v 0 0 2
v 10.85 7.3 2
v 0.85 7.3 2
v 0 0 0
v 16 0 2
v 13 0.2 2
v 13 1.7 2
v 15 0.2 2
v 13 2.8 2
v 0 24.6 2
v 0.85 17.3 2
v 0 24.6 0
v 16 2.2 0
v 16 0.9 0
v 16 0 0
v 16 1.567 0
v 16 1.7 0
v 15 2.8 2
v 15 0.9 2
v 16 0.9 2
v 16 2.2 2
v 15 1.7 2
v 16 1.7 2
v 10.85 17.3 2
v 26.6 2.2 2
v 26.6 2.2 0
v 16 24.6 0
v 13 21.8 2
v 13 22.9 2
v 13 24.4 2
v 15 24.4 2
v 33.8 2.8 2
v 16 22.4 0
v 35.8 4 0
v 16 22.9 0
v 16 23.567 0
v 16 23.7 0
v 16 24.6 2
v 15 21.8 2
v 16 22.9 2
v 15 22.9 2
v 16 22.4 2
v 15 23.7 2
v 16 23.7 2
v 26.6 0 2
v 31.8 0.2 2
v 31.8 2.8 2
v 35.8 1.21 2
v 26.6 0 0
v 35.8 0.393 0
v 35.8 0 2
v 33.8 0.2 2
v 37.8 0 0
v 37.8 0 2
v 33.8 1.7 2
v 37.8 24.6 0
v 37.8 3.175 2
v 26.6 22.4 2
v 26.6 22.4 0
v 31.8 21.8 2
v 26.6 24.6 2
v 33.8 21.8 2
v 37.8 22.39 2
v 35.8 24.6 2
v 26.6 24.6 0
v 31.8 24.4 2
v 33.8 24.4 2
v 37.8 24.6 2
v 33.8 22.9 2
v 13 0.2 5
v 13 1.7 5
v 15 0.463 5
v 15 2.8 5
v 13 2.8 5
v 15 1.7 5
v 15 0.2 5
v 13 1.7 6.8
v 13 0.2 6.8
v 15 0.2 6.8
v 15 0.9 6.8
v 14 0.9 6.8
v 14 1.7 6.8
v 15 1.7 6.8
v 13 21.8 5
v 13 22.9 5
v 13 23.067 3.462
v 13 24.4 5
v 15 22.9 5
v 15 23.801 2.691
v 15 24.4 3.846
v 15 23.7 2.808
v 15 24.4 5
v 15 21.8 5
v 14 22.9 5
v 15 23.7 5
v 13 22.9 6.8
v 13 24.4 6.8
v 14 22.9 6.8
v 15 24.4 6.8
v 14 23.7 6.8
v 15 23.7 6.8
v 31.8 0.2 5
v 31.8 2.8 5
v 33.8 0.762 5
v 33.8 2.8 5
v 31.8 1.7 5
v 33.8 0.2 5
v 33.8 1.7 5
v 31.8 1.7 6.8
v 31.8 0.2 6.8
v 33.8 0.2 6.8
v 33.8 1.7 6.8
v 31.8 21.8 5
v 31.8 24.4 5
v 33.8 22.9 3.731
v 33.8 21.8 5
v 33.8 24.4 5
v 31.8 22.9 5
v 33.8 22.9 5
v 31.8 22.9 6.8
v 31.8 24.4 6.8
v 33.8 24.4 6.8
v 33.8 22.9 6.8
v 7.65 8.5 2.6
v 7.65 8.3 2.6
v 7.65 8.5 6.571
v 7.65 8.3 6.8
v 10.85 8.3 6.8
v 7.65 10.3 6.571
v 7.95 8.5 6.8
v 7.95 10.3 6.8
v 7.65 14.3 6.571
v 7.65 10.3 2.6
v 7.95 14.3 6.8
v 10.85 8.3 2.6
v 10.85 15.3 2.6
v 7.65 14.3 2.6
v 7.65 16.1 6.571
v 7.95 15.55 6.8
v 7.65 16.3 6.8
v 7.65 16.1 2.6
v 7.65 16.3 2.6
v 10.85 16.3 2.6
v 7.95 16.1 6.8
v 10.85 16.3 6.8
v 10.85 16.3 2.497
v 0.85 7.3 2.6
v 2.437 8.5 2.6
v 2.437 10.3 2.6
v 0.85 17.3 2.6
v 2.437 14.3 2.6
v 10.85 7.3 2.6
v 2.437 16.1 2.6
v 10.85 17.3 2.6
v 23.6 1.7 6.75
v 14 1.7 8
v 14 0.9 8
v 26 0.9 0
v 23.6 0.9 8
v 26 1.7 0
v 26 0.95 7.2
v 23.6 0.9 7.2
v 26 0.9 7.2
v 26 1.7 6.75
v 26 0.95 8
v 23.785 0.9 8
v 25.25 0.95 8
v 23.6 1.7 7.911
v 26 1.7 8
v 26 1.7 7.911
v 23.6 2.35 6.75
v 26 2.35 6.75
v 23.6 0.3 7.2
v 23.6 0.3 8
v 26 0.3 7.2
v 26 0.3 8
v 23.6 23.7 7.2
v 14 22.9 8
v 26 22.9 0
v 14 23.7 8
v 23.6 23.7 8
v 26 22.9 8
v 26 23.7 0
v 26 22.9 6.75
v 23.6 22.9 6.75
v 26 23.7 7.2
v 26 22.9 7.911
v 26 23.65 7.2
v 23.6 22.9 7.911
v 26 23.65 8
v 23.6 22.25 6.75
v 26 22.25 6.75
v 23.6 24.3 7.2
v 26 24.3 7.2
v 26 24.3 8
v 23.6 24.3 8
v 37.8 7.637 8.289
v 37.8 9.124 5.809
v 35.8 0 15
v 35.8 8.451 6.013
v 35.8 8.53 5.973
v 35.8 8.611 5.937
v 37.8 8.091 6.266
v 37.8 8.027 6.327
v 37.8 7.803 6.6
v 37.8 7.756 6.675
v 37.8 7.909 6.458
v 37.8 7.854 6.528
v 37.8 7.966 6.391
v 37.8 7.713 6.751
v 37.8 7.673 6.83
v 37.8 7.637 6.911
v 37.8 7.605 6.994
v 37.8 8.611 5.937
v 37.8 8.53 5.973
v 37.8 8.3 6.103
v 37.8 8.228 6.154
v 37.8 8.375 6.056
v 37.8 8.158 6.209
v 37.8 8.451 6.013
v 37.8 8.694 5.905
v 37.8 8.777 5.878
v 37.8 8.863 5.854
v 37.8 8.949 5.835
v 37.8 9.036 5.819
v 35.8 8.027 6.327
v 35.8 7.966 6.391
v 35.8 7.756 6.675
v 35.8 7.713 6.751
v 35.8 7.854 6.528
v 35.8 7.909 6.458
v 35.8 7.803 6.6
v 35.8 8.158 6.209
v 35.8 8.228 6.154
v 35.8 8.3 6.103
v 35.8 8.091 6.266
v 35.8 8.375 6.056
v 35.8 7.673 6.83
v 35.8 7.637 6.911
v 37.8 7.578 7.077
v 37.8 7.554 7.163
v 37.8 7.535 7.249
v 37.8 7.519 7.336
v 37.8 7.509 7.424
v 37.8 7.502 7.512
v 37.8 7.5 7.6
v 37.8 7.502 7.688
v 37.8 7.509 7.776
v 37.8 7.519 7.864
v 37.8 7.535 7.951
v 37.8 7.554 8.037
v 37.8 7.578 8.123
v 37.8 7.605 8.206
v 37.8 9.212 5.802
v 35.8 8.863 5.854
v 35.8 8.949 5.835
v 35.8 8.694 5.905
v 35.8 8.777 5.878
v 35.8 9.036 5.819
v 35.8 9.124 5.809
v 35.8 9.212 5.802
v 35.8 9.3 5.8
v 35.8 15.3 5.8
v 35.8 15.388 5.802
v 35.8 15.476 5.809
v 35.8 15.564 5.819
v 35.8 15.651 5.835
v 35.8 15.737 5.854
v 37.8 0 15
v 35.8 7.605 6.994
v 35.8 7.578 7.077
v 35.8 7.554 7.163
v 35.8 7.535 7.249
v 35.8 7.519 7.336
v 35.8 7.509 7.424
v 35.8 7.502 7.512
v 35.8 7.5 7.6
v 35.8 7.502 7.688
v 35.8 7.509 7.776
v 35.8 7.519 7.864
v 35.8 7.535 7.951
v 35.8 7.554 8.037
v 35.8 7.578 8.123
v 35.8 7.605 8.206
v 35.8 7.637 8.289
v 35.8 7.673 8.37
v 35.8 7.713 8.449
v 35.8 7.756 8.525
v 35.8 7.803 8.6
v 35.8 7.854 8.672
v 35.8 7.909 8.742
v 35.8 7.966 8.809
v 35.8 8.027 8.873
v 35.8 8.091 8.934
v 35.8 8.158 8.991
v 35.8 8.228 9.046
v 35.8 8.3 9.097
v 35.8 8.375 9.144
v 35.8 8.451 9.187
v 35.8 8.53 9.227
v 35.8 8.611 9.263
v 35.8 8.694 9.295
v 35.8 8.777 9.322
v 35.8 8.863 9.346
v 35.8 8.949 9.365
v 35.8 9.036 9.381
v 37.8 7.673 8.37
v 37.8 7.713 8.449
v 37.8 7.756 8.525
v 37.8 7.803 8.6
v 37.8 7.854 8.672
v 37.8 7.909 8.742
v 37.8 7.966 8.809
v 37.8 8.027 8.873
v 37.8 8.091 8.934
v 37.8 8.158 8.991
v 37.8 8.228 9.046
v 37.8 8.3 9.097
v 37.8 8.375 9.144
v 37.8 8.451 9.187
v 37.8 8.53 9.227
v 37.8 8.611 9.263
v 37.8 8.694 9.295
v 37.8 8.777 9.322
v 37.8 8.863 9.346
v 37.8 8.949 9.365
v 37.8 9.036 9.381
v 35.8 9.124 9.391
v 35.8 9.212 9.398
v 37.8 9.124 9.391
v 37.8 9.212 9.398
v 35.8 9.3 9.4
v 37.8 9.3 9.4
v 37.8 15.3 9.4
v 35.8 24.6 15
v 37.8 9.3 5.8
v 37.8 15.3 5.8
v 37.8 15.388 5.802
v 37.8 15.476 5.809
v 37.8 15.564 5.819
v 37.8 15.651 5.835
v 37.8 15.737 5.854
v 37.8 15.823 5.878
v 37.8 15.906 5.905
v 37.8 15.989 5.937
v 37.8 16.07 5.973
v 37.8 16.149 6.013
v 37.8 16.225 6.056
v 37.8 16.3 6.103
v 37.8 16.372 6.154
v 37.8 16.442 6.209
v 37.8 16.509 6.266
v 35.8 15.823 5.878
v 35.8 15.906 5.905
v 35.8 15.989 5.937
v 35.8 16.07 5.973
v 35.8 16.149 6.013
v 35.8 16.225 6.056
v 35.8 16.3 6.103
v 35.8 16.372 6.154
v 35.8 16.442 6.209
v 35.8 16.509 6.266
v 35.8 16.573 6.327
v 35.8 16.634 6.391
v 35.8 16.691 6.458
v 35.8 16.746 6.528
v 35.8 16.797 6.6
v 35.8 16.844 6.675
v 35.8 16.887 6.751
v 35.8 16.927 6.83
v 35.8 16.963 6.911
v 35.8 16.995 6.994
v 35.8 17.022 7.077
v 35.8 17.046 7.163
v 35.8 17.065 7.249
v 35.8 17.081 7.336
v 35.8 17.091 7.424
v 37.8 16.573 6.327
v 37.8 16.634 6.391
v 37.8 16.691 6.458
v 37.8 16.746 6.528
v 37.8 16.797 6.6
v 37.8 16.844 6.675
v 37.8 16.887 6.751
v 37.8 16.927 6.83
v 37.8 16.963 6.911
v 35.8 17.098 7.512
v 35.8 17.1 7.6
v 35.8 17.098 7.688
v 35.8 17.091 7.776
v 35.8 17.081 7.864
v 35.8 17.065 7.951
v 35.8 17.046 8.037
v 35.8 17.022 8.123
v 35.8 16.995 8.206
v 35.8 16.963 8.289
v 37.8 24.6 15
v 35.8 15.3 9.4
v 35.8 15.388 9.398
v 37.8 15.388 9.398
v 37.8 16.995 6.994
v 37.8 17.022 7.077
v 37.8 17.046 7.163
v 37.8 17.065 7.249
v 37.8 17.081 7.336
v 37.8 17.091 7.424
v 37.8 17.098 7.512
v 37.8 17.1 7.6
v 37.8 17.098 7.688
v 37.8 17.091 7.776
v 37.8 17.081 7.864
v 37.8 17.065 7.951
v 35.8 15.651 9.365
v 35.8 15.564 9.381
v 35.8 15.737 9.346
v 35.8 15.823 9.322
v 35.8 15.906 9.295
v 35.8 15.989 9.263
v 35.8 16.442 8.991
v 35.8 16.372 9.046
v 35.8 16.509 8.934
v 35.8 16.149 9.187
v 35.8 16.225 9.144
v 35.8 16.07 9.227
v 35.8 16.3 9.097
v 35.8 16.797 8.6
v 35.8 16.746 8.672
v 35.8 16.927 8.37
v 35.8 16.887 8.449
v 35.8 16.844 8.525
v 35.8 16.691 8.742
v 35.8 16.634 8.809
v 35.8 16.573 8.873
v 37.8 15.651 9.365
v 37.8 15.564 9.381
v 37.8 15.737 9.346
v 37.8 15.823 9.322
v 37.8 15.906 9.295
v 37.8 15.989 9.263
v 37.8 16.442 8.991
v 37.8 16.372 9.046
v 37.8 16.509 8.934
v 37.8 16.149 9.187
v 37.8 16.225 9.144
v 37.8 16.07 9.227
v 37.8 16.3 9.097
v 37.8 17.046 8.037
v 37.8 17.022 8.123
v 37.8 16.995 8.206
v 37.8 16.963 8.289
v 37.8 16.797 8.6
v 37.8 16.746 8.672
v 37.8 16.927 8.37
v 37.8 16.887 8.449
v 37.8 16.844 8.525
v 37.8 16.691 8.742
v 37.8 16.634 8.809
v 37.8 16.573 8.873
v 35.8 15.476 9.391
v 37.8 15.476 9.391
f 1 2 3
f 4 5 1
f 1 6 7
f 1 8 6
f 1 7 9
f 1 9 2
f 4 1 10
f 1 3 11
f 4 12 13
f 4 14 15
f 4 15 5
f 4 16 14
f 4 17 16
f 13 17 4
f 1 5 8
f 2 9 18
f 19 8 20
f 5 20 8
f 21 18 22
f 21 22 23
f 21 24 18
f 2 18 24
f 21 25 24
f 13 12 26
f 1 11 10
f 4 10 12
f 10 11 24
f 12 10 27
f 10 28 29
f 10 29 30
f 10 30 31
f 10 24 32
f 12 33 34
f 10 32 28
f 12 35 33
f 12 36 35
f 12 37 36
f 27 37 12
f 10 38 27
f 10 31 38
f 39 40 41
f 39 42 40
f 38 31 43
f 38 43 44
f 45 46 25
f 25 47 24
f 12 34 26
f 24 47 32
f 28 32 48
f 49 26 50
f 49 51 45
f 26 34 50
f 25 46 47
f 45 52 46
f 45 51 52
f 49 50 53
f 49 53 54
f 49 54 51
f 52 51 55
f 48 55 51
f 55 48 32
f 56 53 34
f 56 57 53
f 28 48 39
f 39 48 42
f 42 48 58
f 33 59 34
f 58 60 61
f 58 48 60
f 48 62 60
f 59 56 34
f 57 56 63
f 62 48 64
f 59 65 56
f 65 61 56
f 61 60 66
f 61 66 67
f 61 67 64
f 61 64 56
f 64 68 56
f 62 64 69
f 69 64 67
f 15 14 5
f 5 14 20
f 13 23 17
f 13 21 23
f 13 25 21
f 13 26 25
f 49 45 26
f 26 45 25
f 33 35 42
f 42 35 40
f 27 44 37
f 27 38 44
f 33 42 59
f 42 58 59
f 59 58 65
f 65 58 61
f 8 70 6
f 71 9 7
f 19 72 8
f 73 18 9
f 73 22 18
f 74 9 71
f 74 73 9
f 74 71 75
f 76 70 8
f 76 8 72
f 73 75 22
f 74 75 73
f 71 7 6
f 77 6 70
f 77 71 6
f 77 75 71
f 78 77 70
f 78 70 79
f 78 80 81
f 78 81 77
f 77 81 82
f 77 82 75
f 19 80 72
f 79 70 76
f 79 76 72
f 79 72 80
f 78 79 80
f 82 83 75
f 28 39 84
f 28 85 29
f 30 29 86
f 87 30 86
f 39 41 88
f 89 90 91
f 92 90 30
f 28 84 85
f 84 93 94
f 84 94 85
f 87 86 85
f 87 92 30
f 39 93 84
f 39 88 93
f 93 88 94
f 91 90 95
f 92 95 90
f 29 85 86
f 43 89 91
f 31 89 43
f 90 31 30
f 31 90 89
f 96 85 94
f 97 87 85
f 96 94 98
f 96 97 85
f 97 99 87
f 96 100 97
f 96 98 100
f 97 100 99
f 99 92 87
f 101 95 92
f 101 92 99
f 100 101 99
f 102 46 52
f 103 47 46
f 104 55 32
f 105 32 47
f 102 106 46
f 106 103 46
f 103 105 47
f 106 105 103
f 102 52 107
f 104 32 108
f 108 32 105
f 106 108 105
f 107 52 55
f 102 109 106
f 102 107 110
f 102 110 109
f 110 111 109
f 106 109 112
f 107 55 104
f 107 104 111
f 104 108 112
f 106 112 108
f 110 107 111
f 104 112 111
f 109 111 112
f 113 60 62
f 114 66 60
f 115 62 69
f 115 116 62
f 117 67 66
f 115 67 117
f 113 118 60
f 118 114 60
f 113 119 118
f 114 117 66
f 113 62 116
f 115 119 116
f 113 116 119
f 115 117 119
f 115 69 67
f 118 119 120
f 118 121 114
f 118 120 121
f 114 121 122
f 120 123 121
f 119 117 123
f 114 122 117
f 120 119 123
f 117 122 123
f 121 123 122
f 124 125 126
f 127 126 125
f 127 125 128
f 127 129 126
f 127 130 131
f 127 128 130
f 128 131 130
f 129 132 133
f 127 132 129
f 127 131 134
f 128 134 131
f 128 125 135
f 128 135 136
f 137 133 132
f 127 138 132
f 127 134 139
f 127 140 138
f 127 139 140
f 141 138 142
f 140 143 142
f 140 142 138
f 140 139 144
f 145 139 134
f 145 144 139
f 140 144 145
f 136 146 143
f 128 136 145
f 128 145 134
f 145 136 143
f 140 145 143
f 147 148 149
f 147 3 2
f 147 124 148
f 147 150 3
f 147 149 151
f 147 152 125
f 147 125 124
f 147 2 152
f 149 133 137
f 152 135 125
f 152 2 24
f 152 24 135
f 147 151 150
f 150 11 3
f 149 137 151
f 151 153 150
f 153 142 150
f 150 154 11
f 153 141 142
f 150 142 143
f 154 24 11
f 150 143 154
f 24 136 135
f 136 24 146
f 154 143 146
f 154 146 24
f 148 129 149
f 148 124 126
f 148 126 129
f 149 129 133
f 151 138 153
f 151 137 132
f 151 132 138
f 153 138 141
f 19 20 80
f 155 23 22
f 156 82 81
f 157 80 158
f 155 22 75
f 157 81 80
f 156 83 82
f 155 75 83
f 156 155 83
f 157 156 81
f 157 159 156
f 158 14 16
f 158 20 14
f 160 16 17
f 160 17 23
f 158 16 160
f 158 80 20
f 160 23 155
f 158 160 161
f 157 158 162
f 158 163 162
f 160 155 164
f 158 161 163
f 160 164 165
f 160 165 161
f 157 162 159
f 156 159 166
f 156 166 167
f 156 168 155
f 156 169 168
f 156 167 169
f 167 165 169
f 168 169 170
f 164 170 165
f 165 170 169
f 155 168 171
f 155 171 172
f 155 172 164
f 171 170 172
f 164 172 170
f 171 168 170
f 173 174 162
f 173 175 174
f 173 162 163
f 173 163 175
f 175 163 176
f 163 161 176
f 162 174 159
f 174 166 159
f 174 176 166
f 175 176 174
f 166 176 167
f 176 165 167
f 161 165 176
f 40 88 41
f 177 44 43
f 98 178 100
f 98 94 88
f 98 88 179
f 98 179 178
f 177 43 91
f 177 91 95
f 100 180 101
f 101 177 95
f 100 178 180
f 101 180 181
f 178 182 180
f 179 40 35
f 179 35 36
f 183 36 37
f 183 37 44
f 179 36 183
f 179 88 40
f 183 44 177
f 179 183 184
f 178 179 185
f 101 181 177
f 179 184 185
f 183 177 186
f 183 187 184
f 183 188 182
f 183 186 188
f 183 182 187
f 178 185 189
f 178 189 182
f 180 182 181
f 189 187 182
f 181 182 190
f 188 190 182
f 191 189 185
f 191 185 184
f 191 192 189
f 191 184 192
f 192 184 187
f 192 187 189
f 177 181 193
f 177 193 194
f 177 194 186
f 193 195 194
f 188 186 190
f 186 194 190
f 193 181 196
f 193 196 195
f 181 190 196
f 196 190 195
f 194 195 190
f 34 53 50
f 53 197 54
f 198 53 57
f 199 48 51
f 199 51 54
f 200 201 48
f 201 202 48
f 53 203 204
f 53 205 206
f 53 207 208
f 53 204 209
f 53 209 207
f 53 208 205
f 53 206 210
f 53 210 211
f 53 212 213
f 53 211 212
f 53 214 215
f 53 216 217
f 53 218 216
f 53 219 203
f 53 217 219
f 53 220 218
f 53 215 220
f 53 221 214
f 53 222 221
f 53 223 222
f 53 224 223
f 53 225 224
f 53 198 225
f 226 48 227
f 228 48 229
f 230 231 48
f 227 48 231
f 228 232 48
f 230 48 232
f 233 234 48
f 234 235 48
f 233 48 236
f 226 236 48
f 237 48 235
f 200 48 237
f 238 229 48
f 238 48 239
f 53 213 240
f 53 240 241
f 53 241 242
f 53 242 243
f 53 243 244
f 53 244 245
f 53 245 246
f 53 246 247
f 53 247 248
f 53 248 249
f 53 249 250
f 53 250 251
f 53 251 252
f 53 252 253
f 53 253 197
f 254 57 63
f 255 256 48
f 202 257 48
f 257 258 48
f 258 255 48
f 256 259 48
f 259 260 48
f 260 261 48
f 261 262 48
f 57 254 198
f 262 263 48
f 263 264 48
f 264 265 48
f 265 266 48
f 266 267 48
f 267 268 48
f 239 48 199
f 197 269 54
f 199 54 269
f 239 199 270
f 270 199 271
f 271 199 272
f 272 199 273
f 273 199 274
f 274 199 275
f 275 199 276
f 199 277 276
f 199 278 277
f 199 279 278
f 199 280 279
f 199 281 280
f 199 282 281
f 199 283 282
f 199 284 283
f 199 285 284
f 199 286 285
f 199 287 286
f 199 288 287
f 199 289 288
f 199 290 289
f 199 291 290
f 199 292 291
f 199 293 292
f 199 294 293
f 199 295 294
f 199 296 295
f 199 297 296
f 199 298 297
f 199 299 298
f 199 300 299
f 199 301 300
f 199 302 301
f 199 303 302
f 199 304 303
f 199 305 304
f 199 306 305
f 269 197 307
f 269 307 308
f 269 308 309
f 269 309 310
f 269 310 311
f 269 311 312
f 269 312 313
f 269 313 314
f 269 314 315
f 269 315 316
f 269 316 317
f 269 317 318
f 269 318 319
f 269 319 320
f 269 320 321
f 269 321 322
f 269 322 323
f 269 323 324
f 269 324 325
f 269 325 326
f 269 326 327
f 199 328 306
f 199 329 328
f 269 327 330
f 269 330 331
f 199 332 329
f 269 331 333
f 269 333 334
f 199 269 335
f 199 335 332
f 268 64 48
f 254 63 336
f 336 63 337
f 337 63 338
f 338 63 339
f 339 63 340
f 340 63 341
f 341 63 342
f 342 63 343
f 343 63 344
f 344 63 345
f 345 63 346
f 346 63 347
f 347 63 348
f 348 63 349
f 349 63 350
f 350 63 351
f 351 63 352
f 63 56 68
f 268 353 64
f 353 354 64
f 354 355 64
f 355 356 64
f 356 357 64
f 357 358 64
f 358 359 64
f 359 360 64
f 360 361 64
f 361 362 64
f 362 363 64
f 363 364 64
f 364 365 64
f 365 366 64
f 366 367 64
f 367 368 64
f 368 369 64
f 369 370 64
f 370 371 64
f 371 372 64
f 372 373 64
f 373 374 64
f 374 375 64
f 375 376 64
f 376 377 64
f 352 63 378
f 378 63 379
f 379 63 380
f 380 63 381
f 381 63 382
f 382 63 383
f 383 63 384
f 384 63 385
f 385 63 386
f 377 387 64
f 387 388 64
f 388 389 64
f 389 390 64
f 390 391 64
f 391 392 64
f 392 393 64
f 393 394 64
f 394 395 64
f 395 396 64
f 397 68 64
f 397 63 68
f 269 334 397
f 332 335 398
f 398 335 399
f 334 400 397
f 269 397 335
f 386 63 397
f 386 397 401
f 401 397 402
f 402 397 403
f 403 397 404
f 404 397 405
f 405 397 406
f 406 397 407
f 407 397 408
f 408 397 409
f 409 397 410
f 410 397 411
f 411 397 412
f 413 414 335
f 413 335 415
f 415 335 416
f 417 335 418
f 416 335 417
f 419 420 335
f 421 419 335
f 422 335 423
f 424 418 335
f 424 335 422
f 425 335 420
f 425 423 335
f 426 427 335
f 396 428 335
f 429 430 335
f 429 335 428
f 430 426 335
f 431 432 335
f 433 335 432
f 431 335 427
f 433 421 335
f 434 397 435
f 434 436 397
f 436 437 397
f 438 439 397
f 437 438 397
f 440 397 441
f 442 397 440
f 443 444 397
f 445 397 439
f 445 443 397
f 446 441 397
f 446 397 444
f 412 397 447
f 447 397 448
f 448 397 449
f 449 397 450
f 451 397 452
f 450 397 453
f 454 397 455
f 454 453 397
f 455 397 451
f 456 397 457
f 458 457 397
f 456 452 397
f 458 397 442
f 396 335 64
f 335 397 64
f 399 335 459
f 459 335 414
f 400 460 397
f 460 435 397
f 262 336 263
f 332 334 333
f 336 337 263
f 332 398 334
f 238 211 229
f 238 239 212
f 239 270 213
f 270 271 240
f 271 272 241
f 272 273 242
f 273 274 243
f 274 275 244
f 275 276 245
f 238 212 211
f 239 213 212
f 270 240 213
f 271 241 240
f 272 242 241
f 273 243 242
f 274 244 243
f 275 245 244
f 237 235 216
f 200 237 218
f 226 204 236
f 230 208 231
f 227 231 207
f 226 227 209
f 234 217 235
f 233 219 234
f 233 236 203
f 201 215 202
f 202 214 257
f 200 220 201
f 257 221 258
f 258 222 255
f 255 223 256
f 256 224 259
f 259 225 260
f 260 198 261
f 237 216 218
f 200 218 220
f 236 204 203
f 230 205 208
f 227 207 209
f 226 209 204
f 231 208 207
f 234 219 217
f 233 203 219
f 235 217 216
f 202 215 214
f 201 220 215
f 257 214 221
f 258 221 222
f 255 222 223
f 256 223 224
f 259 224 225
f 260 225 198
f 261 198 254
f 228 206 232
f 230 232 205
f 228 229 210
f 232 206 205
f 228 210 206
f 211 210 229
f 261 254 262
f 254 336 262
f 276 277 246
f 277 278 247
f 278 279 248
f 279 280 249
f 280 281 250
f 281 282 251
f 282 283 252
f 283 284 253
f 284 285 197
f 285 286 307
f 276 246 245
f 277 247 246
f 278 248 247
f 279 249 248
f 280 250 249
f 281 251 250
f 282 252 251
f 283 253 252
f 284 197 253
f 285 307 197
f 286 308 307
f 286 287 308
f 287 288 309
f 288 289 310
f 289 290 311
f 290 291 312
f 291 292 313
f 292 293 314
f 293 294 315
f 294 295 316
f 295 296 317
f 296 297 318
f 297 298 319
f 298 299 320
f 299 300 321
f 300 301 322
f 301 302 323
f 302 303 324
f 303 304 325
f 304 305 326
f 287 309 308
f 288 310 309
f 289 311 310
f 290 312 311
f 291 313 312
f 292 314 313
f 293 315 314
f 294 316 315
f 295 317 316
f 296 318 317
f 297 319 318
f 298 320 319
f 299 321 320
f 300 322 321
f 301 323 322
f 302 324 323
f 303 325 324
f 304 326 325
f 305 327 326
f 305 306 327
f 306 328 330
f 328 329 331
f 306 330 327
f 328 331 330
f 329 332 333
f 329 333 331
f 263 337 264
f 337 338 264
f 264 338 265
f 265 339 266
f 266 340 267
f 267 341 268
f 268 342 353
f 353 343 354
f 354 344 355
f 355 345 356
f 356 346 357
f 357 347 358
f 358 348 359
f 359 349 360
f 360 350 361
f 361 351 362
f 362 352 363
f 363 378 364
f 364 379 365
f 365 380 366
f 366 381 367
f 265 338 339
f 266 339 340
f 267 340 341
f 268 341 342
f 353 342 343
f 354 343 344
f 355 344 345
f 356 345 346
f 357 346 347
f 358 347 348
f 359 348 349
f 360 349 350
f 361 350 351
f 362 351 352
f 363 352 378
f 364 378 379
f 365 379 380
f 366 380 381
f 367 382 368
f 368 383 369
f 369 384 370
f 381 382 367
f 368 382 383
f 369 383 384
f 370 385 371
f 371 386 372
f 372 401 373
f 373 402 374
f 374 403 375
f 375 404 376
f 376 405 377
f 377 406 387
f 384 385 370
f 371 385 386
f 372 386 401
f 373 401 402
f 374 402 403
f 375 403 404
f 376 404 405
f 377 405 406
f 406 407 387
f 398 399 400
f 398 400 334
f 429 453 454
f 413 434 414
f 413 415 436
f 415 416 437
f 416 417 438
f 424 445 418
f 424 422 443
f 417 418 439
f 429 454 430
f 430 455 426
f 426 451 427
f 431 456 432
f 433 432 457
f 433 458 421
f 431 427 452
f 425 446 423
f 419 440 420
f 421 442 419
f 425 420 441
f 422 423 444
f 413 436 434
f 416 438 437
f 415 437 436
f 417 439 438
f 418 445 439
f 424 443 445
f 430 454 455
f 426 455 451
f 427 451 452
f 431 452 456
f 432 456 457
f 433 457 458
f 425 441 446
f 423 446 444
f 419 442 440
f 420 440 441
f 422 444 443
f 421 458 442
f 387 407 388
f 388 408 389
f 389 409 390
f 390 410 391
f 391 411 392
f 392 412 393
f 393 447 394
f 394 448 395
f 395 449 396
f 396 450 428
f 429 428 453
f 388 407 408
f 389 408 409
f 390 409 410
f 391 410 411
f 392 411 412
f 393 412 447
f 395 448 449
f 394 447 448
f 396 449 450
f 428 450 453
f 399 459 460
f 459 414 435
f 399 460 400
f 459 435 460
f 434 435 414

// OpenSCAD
// Sample with flexible side latches, v0.9. Millimetres.
translate([-40.2, -7.0, 0]) union(){
difference(){
translate([40.2, 7.0, 0]) cube([37.8, 24.6, 2.0]);
translate([56.2, 6.9, -0.1]) cube([10.6, 2.3, 2.2]);
translate([56.2, 29.400000000000002, -0.1]) cube([10.6, 2.3, 2.2]);
}
union(){
translate([53.2, 7.2, 2.0]) cube([2.0, 2.6, 3.0]);
translate([53.2, 7.2, 2.0]) cube([2.0, 1.5, 4.8]);
translate([53.2, 28.8, 2.0]) cube([2.0, 2.6, 3.0]);
translate([53.2, 29.900000000000002, 2.0]) cube([2.0, 1.5, 4.8]);
translate([72.0, 7.2, 2.0]) cube([2.0, 2.6, 3.0]);
translate([72.0, 7.2, 2.0]) cube([2.0, 1.5, 4.8]);
translate([72.0, 28.8, 2.0]) cube([2.0, 2.6, 3.0]);
translate([72.0, 29.900000000000002, 2.0]) cube([2.0, 1.5, 4.8]);
translate([47.85, 15.3, 2.0]) cube([3.2, 8.0, 4.8]);
translate([41.050000000000004, 14.3, 1.5]) cube([10.0, 10.0, 1.1]);
polyhedron(points=[[41.85, 15.5, 2.0], [48.15, 15.5, 2.0], [48.15, 15.5, 6.8], [41.85, 17.3, 2.0], [48.15, 17.3, 2.0], [48.15, 17.3, 6.8]],faces=[[1, 2, 0], [5, 4, 3], [4, 1, 0], [3, 4, 0], [5, 2, 1], [4, 5, 1], [3, 0, 2], [5, 3, 2]]);
polyhedron(points=[[41.85, 21.3, 2.0], [48.15, 21.3, 2.0], [48.15, 21.3, 6.8], [41.85, 23.1, 2.0], [48.15, 23.1, 2.0], [48.15, 23.1, 6.8]],faces=[[1, 2, 0], [5, 4, 3], [4, 1, 0], [3, 4, 0], [5, 2, 1], [4, 5, 1], [3, 0, 2], [5, 3, 2]]);
}
union(){
translate([54.2, 7.8999999999999995, 0]) cube([12.0, 0.8, 8.0]);
polyhedron(points=[[63.800000000000004, 9.35, 6.75], [66.2, 9.35, 6.75], [63.800000000000004, 8.649999999999999, 6.75], [66.2, 8.649999999999999, 6.75], [63.800000000000004, 8.649999999999999, 8.0], [66.2, 8.649999999999999, 8.0]],faces=[[0, 2, 4], [1, 5, 3], [0, 1, 3], [0, 3, 2], [2, 3, 5], [2, 5, 4], [4, 5, 1], [4, 1, 0]]);
translate([63.800000000000004, 7.3, 7.2]) cube([2.4, 0.65, 0.8]);
}
union(){
translate([54.2, 29.900000000000002, 0]) cube([12.0, 0.8, 8.0]);
polyhedron(points=[[63.800000000000004, 29.25, 6.75], [66.2, 29.25, 6.75], [63.800000000000004, 29.950000000000003, 6.75], [66.2, 29.950000000000003, 6.75], [63.800000000000004, 29.950000000000003, 8.0], [66.2, 29.950000000000003, 8.0]],faces=[[4, 2, 0], [3, 5, 1], [3, 1, 0], [2, 3, 0], [5, 3, 2], [4, 5, 2], [1, 5, 4], [0, 1, 4]]);
translate([63.800000000000004, 30.650000000000002, 7.2]) cube([2.4, 0.65, 0.8]);
}
difference(){
translate([76.0, 7.0, 0]) cube([2, 24.6, 15.0]);
union(){
translate([75.9, 16.3, 5.8]) cube([2.2, 6.0, 3.6]);
translate([75.9, 16.3, 7.6]) rotate([0,90,0]) cylinder(h=2.2,r=1.8,$fn=128);
translate([75.9, 22.3, 7.6]) rotate([0,90,0]) cylinder(h=2.2,r=1.8,$fn=128);
}
}
}
